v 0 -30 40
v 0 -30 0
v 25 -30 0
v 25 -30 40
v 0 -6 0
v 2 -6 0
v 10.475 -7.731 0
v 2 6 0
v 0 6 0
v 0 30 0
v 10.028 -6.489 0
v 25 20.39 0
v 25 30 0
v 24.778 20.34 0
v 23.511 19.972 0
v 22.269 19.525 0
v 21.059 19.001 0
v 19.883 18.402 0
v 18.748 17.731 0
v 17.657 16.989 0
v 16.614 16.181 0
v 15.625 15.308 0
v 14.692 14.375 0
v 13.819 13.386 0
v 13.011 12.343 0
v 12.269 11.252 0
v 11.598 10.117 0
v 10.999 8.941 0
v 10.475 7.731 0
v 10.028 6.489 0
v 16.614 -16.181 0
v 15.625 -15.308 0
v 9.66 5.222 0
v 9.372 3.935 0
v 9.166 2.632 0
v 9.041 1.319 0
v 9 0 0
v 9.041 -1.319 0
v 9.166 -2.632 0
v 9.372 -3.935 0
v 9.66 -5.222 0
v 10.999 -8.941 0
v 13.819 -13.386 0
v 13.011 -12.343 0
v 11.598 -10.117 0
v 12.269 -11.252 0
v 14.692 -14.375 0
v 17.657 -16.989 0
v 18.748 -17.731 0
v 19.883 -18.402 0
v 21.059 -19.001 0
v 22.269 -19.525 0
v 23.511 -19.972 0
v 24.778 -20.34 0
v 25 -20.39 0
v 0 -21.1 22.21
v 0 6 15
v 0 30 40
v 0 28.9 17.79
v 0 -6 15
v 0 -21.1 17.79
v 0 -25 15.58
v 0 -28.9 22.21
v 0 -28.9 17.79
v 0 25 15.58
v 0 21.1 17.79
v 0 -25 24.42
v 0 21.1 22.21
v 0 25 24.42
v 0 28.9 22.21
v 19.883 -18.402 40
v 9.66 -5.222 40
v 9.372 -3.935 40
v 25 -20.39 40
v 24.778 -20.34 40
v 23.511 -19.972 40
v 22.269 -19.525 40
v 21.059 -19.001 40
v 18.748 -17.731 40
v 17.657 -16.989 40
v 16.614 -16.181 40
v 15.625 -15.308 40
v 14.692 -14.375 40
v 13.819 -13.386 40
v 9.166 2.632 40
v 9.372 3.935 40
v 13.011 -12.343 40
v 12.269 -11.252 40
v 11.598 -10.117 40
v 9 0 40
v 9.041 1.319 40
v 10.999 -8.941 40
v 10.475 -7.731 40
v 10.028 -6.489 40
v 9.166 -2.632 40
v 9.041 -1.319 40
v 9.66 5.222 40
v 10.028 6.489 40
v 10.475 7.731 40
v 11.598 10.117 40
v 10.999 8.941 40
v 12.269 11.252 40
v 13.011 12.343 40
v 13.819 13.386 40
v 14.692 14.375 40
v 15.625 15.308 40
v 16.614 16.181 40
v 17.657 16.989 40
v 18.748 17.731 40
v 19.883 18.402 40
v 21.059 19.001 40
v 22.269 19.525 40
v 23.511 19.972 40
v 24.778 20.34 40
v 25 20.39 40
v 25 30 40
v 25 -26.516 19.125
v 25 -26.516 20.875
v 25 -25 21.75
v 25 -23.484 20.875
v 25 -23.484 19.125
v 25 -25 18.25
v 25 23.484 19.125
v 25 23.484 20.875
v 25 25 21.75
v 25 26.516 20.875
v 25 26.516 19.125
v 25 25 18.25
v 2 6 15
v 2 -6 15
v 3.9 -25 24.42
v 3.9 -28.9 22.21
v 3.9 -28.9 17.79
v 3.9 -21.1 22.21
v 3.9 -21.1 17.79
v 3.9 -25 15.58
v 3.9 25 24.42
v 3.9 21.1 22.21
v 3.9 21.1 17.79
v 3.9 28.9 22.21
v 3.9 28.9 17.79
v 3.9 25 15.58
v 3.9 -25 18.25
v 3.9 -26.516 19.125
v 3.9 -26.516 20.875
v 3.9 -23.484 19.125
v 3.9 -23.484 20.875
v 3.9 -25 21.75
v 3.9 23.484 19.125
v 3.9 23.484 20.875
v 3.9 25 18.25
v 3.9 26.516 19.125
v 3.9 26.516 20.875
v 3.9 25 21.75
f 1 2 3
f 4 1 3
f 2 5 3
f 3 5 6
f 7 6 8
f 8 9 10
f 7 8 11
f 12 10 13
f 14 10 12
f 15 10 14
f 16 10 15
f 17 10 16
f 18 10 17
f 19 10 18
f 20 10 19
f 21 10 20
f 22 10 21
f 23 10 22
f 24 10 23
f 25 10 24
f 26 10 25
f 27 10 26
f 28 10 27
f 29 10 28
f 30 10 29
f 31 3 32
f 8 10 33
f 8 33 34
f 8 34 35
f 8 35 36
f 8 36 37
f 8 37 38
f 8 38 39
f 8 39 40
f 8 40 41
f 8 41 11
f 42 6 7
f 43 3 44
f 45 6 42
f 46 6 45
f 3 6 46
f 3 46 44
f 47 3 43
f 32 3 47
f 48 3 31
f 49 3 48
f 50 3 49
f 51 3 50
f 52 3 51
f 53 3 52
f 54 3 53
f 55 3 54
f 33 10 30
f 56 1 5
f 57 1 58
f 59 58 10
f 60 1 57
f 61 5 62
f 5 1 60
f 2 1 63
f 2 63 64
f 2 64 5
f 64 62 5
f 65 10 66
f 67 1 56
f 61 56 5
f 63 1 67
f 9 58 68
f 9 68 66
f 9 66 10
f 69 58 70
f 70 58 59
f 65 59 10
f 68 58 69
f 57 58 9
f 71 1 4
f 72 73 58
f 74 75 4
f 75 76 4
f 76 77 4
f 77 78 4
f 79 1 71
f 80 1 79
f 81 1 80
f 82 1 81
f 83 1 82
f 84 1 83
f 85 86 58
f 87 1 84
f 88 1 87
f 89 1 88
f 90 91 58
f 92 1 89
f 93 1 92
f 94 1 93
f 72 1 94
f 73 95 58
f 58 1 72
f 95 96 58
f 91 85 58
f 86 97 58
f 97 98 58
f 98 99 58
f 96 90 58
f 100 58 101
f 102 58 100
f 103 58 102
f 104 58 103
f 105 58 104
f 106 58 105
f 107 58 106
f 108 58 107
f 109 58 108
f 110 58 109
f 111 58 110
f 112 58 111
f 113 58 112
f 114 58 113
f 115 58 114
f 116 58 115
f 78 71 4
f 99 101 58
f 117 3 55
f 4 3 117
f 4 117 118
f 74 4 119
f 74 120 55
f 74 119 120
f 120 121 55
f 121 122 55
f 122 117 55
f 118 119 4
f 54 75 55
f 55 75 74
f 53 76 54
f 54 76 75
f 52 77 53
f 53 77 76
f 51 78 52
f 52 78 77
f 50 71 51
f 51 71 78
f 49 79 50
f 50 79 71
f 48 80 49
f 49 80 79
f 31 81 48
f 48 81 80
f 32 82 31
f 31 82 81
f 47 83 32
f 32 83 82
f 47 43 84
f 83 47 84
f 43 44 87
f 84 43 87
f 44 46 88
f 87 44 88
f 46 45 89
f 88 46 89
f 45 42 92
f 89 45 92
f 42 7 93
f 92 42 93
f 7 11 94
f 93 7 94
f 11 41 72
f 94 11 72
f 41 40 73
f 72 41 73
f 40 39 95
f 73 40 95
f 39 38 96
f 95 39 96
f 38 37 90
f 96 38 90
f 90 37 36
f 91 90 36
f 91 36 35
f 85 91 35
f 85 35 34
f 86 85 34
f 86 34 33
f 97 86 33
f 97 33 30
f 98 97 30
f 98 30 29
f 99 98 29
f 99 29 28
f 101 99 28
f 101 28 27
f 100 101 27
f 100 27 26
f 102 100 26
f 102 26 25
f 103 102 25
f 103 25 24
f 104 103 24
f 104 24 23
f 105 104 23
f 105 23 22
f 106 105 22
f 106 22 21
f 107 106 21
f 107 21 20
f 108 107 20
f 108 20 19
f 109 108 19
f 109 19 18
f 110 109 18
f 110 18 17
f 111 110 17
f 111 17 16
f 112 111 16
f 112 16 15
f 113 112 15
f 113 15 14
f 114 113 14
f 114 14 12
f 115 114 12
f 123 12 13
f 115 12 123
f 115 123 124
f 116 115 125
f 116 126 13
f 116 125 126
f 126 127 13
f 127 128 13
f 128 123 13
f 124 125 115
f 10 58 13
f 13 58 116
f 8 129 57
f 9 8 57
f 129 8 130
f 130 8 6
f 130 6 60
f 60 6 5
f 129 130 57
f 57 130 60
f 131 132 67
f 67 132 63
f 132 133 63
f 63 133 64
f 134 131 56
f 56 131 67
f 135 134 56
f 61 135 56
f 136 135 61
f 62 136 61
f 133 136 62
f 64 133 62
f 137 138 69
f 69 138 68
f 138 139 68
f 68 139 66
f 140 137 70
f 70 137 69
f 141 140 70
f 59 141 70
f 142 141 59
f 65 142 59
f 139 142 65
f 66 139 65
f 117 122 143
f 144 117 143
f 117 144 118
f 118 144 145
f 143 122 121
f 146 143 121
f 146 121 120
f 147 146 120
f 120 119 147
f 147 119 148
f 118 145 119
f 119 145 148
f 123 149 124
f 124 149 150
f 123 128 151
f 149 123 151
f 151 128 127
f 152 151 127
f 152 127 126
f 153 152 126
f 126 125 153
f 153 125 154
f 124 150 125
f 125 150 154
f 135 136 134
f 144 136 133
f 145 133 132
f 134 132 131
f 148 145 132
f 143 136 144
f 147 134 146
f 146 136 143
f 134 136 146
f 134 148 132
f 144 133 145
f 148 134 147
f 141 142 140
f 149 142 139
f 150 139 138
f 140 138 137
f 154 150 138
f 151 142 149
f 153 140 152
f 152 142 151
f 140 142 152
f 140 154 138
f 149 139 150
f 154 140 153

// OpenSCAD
//Phone Microscope Adapter Inside Clamp
difference(){
	translate([30,0,0])linear_extrude(height=40){
		difference(){
			translate([-15,0,0])square([30,60], center=true);
			circle(21, $fn=100);
			square([10,60], center=true);
		}
	}
	union(){
		translate([0,-6,0])cube([2,12,15]);
		translate([-10,-25,20])rotate([0,90,0])cylinder(40,1.75,1.75);
		translate([-10,25,20])rotate([0,90,0])cylinder(40,1.75,1.75);
		translate([-.1,25,20])rotate([0,90,0])translate([-4.42,0,0])linear_extrude(height=4)polygon([[0,0],[2.21,-3.9],[6.63,-3.9],[8.84,0],[6.63,3.9],[2.21,3.9]]);
		translate([-.1,-25,20])rotate([0,90,0])translate([-4.42,0,0])linear_extrude(height=4)polygon([[0,0],[2.21,-3.9],[6.63,-3.9],[8.84,0],[6.63,3.9],[2.21,3.9]]);
	}

}
